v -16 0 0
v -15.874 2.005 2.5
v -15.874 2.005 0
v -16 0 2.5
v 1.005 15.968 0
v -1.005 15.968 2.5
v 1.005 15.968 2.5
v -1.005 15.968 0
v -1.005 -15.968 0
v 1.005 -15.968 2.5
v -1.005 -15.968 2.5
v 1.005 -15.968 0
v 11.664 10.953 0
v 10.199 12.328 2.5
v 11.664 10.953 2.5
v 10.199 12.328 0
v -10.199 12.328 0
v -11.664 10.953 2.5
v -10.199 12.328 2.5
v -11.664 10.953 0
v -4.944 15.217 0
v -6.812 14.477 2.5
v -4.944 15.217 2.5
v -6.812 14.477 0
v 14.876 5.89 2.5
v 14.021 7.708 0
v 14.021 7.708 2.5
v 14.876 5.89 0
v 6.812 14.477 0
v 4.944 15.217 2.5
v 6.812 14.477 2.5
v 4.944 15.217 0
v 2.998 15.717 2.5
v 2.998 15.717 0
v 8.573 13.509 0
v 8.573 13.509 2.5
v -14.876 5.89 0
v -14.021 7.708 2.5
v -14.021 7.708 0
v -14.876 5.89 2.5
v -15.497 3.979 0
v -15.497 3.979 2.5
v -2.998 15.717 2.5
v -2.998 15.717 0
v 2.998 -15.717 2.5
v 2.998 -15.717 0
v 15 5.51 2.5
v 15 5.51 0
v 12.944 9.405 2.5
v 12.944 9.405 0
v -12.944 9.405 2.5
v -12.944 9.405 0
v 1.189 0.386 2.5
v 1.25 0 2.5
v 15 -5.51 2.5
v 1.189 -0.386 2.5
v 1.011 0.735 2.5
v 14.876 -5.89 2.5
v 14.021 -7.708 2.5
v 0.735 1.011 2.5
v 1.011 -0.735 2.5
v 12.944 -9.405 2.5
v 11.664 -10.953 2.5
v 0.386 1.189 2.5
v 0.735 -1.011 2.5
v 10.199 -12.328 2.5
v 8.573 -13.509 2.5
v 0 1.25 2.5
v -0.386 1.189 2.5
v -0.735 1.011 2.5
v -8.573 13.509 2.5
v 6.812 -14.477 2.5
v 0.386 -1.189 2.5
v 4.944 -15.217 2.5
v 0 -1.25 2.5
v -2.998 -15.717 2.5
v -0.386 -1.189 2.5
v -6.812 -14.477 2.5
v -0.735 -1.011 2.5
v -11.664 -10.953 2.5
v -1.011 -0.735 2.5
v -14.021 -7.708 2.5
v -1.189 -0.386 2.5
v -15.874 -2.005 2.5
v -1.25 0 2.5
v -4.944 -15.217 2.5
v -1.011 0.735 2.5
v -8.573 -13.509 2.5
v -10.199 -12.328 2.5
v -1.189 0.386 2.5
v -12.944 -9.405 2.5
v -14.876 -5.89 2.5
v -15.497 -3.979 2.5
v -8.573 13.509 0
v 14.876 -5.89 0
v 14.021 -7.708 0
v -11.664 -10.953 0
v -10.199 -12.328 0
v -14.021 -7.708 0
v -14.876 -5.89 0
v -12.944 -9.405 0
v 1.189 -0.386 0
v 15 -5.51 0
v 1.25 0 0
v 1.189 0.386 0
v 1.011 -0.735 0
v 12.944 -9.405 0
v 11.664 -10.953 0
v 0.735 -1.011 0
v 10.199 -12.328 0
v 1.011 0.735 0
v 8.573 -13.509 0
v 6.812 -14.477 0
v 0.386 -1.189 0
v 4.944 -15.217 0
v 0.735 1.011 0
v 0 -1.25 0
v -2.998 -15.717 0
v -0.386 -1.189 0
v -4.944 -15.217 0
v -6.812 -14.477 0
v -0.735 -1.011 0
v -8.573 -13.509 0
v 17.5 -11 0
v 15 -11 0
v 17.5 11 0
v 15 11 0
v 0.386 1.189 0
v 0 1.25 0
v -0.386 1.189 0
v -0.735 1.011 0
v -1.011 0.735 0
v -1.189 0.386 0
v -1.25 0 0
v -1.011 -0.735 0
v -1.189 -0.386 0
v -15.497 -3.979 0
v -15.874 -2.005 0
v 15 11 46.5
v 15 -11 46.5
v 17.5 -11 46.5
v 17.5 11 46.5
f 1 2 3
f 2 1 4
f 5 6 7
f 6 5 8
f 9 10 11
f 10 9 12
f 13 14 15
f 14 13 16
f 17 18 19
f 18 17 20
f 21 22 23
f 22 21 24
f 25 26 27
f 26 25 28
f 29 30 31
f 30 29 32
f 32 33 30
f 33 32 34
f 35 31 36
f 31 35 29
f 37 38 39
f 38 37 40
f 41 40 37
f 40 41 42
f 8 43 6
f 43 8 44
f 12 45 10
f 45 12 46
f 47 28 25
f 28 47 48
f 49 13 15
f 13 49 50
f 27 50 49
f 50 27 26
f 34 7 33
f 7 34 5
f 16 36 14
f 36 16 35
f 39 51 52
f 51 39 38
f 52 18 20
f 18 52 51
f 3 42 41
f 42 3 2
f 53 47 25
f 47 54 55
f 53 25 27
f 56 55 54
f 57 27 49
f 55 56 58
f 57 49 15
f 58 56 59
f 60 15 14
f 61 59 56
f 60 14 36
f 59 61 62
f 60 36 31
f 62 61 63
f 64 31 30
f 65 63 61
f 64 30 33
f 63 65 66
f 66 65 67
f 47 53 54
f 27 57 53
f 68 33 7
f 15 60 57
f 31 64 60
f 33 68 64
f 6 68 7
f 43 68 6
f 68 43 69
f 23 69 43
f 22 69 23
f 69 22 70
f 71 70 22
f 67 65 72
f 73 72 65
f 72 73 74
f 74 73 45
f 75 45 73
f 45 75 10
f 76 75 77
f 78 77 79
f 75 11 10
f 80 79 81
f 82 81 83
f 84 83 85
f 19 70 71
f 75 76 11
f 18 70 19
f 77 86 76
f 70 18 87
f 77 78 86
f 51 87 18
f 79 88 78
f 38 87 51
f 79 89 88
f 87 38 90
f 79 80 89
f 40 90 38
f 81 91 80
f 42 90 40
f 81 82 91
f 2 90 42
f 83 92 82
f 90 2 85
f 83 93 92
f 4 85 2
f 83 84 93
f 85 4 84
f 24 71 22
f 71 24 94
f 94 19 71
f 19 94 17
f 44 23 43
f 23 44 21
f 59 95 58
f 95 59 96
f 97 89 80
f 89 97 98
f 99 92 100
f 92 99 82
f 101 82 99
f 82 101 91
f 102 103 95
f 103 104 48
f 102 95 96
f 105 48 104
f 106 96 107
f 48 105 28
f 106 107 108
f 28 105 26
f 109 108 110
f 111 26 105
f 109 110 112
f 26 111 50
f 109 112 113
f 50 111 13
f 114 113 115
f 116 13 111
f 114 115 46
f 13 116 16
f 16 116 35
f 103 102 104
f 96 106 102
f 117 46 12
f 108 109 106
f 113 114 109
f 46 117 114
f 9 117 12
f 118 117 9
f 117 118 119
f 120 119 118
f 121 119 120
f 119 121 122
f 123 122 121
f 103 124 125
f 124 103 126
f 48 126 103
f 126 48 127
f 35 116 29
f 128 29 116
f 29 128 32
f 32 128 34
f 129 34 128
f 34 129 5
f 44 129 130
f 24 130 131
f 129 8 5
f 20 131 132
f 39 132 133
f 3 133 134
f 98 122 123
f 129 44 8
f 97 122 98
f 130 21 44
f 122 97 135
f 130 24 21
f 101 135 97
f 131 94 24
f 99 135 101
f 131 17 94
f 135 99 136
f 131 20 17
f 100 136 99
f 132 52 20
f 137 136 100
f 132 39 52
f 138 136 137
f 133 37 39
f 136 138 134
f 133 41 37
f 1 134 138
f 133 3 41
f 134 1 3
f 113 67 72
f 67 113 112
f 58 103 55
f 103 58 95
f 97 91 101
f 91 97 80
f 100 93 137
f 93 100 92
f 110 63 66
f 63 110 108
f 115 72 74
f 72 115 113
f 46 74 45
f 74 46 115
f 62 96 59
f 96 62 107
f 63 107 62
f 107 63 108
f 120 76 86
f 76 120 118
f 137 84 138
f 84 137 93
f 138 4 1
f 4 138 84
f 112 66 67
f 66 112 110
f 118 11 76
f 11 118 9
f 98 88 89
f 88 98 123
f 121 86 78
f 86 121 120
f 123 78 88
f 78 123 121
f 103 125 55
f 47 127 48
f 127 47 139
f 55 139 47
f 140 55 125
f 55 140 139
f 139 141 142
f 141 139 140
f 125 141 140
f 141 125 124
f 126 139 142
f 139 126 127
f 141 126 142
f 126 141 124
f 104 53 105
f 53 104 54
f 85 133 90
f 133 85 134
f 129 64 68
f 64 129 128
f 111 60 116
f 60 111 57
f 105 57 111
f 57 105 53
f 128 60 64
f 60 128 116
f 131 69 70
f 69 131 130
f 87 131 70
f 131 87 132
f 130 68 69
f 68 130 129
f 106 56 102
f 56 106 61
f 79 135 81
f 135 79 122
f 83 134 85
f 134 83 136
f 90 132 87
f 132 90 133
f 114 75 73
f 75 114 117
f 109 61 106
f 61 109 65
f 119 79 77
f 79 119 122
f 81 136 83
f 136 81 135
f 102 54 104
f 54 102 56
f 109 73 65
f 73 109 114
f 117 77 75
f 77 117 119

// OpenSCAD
module mounting_holes()
{
    $fn = 35;
    x1 = 0.0;
    x2 = 14.0;
    y1 = 0.0;
    y2 = 30.0;

    depth = 4.0;
    diam = 2.72;

    translate([x1, y1, 0])
    cylinder(h = depth, r = diam / 2);

    translate([x1, y2, 0])
    cylinder(h = depth, r = diam / 2);

    translate([x2, y2, 0])
    cylinder(h = depth, r = diam / 2);

    translate([x2, y1, 0])
    cylinder(h = depth, r = diam / 2);
}

module central_hole_cutout(diam, thickness)
{
    $fn = 20;
    cylinder(r = diam /2, h = thickness);
}

module mounting_surface(diam, thickness)
{
    $fn = 50;
    cylinder(r = diam / 2, h = thickness);
}

module camera_mounting_plate(
    plate_diam,
    thickness,
    hole_location_radius,
    hole_diam,
    num_holes,
    central_hole_diam,
    arm_width,
    arm_length
)
{
    ximiea_cam_h = 35;
    r = plate_diam / 2;
    sagitta = r - sqrt(pow(r, 2) - pow(arm_width /2, 2));
    difference()  {
        union() {
            mounting_surface(plate_diam, thickness);
            translate([ximiea_cam_h / 2, -arm_width/2, 0])
            rotate([0, -90, 0])
            cube([44.0 + thickness, 22, thickness]);
        }
        central_hole_cutout(central_hole_diam, thickness);
    }
}

//pitch_motor mount
module pitch_motor_mount()
{
    front_plate_diam = 32;
    thickness = 2.5;
    hole_diam = 1.2;
    num_holes = 3.0;
    arm_width = 22.0;
    pitch_motor_mount_holes_radius = 3;
    pitch_motor_mount_central_hole = 2.5;
    pitch_motor_arm_length = 38.0;

    camera_mounting_plate(
        front_plate_diam,
        thickness,
        pitch_motor_mount_holes_radius,
        hole_diam,
        num_holes,
        pitch_motor_mount_central_hole,
        arm_width,
        pitch_motor_arm_length
    );
}

// run
pitch_motor_mount();
